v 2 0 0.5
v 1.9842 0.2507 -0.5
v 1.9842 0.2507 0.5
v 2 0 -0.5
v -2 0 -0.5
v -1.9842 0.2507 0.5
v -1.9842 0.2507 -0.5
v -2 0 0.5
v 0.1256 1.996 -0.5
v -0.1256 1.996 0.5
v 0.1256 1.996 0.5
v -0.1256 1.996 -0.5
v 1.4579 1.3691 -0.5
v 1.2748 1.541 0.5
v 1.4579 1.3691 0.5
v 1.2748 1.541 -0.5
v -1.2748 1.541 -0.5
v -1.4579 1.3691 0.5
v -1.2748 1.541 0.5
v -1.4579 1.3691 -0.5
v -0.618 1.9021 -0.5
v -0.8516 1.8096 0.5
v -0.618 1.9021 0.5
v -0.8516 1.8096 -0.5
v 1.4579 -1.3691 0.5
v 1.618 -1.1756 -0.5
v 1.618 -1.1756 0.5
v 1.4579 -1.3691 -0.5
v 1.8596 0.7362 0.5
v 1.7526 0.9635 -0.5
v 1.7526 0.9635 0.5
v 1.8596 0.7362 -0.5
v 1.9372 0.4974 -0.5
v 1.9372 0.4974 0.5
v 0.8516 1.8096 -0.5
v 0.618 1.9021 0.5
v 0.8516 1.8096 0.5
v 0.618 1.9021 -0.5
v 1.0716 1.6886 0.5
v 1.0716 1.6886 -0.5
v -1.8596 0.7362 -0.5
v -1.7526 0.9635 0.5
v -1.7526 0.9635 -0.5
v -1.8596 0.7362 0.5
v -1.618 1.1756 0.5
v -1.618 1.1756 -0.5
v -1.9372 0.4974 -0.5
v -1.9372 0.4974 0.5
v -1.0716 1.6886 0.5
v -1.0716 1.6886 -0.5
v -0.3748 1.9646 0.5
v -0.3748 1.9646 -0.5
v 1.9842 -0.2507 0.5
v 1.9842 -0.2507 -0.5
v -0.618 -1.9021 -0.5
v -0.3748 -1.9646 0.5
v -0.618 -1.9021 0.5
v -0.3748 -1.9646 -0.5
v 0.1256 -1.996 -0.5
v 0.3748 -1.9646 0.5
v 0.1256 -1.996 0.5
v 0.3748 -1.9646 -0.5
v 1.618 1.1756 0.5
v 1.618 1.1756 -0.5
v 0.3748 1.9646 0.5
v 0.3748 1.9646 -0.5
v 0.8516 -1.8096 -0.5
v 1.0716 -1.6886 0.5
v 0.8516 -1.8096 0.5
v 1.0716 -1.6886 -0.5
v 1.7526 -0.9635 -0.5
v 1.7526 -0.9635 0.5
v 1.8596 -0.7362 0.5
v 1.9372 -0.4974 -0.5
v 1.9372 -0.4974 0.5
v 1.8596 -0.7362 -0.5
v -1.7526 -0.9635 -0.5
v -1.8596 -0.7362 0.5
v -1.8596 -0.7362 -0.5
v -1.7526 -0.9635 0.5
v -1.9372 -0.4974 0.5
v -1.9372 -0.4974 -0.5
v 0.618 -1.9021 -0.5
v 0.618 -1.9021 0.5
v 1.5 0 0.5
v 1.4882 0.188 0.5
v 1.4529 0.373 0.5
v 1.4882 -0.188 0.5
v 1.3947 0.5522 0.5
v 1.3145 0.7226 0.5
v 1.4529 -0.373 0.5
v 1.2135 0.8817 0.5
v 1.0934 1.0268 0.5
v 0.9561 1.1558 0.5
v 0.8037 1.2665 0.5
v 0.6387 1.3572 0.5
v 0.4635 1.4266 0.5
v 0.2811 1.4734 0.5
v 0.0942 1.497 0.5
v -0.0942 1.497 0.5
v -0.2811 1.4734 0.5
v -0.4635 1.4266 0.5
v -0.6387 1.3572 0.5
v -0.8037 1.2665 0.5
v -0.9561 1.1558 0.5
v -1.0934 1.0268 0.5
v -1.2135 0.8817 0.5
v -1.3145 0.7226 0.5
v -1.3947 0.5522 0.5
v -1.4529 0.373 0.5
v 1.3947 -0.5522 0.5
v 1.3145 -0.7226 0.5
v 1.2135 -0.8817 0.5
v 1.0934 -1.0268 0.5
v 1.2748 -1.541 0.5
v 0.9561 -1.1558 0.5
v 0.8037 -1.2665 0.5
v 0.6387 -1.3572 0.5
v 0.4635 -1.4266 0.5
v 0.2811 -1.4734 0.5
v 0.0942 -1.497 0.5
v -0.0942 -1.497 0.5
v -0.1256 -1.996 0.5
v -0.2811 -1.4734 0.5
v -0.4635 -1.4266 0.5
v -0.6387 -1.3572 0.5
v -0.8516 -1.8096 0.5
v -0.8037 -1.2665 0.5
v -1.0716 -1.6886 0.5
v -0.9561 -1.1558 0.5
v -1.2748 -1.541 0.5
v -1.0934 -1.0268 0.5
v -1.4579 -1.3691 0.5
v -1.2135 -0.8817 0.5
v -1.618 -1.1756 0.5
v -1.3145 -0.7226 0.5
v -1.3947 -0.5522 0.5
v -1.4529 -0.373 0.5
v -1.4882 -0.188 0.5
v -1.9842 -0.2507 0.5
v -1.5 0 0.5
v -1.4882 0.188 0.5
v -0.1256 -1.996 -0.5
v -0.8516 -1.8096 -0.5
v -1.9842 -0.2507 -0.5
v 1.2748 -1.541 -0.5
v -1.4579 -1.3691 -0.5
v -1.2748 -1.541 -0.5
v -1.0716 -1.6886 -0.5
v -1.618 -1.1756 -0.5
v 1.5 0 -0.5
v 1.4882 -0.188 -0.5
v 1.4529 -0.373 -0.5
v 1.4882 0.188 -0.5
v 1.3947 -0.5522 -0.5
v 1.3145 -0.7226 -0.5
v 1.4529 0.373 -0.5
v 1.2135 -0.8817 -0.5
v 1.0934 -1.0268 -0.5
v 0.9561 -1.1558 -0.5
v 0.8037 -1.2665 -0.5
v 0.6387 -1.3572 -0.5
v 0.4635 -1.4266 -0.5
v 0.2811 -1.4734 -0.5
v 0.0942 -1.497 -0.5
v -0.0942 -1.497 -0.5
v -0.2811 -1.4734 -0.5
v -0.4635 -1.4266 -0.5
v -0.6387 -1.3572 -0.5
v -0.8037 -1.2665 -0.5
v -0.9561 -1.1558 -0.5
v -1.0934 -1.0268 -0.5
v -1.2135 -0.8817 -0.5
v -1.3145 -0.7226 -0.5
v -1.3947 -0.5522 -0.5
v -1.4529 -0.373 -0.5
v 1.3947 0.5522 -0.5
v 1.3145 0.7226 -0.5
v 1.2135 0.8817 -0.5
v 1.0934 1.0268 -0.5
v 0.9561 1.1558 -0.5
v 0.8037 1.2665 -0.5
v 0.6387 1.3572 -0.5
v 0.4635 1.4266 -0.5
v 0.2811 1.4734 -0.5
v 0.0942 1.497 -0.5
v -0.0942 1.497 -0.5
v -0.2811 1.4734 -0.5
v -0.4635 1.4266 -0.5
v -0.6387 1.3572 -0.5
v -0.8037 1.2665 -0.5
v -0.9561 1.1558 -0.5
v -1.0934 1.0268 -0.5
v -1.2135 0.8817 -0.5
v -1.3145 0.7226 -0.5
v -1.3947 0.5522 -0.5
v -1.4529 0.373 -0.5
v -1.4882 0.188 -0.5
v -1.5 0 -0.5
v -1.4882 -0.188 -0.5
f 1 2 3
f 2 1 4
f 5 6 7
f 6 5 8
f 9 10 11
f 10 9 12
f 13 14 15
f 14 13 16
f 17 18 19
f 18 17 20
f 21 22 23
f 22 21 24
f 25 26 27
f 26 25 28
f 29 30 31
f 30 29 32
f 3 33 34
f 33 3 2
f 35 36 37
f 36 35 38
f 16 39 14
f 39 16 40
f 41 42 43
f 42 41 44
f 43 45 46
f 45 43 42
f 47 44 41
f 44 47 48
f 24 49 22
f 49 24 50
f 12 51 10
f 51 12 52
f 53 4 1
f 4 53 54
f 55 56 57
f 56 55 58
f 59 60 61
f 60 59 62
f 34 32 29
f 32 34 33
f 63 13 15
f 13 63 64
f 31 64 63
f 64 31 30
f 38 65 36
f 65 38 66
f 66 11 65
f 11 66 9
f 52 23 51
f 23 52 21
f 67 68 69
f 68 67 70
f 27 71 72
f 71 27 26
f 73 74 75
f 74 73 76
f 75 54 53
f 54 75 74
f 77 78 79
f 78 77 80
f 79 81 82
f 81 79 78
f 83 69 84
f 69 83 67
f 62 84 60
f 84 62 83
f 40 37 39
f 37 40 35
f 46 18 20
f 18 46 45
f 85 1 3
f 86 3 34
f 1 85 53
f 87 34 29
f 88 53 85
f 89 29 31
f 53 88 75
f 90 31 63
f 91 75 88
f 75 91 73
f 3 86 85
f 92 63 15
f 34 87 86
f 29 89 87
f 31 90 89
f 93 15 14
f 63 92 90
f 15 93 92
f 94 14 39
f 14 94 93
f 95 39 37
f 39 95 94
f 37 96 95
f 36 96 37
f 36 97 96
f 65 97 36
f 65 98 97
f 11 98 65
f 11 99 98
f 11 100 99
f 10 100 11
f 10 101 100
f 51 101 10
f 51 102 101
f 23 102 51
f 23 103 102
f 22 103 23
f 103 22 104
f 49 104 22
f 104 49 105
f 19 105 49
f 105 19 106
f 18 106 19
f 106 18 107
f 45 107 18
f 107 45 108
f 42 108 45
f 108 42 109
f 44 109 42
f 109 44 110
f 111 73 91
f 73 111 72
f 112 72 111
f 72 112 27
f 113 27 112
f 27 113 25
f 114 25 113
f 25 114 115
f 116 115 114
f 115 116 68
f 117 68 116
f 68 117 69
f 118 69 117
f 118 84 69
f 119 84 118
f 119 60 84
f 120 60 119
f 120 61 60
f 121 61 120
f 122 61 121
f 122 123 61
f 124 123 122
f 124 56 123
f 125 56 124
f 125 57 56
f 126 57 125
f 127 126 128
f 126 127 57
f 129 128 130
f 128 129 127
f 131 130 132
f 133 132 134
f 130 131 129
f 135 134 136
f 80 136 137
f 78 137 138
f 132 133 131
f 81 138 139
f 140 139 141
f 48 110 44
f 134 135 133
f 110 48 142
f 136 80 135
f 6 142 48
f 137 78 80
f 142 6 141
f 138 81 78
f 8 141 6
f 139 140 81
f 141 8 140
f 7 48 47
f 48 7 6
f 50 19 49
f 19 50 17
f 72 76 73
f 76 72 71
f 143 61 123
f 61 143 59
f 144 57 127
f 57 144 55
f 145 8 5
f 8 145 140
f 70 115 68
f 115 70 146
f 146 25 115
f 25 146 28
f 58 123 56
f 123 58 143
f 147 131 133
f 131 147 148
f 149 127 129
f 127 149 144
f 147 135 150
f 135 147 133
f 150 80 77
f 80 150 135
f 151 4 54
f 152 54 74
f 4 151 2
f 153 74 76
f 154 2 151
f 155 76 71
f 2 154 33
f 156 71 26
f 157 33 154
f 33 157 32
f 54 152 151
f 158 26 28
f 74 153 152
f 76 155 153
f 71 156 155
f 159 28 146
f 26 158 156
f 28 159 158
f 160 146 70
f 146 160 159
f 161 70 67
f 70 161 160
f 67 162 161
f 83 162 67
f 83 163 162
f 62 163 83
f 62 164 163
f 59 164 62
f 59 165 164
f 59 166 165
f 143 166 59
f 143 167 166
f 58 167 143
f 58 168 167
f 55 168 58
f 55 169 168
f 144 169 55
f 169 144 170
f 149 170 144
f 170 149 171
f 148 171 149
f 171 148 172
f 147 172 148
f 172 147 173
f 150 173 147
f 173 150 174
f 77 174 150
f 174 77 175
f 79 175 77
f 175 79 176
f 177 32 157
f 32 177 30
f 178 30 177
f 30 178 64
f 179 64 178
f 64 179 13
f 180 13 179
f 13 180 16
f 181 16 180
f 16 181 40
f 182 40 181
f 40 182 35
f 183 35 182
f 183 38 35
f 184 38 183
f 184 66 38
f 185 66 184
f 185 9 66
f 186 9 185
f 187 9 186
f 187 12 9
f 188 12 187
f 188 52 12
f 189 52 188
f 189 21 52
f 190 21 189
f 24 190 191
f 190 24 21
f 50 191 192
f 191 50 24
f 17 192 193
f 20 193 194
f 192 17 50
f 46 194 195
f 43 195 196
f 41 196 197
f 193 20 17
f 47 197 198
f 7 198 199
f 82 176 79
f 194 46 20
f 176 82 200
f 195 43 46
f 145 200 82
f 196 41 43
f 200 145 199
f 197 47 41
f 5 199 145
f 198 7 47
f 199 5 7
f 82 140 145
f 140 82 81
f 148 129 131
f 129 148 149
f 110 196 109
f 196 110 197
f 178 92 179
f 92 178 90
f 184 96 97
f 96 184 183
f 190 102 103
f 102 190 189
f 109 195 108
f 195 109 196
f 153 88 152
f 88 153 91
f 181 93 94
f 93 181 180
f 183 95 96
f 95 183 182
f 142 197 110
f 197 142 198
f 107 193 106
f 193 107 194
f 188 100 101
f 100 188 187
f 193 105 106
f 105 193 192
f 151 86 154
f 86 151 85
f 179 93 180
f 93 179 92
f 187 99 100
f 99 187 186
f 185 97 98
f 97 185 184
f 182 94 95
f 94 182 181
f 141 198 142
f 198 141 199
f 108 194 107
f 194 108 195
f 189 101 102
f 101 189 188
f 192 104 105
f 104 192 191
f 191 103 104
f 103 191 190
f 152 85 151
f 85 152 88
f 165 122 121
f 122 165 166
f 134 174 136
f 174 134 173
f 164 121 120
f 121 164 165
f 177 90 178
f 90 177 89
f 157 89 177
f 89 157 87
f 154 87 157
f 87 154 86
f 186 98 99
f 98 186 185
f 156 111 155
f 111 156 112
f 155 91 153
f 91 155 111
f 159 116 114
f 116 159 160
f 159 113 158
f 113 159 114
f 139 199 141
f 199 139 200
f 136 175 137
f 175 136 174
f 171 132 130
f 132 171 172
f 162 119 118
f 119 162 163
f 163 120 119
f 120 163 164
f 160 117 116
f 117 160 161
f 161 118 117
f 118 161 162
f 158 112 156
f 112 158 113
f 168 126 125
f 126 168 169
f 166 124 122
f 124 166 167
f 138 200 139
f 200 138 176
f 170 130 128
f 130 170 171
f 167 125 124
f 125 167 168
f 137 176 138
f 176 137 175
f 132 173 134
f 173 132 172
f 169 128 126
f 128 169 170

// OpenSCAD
$fn = 50;


difference() {
	union() {
		translate(v = [0, 0, -0.5000000000]) {
			cylinder(h = 1, r = 2.0000000000);
		}
	}
	union() {
		translate(v = [0, 0, -100.0000000000]) {
			cylinder(h = 200, r = 1.5000000000);
		}
	}
}
